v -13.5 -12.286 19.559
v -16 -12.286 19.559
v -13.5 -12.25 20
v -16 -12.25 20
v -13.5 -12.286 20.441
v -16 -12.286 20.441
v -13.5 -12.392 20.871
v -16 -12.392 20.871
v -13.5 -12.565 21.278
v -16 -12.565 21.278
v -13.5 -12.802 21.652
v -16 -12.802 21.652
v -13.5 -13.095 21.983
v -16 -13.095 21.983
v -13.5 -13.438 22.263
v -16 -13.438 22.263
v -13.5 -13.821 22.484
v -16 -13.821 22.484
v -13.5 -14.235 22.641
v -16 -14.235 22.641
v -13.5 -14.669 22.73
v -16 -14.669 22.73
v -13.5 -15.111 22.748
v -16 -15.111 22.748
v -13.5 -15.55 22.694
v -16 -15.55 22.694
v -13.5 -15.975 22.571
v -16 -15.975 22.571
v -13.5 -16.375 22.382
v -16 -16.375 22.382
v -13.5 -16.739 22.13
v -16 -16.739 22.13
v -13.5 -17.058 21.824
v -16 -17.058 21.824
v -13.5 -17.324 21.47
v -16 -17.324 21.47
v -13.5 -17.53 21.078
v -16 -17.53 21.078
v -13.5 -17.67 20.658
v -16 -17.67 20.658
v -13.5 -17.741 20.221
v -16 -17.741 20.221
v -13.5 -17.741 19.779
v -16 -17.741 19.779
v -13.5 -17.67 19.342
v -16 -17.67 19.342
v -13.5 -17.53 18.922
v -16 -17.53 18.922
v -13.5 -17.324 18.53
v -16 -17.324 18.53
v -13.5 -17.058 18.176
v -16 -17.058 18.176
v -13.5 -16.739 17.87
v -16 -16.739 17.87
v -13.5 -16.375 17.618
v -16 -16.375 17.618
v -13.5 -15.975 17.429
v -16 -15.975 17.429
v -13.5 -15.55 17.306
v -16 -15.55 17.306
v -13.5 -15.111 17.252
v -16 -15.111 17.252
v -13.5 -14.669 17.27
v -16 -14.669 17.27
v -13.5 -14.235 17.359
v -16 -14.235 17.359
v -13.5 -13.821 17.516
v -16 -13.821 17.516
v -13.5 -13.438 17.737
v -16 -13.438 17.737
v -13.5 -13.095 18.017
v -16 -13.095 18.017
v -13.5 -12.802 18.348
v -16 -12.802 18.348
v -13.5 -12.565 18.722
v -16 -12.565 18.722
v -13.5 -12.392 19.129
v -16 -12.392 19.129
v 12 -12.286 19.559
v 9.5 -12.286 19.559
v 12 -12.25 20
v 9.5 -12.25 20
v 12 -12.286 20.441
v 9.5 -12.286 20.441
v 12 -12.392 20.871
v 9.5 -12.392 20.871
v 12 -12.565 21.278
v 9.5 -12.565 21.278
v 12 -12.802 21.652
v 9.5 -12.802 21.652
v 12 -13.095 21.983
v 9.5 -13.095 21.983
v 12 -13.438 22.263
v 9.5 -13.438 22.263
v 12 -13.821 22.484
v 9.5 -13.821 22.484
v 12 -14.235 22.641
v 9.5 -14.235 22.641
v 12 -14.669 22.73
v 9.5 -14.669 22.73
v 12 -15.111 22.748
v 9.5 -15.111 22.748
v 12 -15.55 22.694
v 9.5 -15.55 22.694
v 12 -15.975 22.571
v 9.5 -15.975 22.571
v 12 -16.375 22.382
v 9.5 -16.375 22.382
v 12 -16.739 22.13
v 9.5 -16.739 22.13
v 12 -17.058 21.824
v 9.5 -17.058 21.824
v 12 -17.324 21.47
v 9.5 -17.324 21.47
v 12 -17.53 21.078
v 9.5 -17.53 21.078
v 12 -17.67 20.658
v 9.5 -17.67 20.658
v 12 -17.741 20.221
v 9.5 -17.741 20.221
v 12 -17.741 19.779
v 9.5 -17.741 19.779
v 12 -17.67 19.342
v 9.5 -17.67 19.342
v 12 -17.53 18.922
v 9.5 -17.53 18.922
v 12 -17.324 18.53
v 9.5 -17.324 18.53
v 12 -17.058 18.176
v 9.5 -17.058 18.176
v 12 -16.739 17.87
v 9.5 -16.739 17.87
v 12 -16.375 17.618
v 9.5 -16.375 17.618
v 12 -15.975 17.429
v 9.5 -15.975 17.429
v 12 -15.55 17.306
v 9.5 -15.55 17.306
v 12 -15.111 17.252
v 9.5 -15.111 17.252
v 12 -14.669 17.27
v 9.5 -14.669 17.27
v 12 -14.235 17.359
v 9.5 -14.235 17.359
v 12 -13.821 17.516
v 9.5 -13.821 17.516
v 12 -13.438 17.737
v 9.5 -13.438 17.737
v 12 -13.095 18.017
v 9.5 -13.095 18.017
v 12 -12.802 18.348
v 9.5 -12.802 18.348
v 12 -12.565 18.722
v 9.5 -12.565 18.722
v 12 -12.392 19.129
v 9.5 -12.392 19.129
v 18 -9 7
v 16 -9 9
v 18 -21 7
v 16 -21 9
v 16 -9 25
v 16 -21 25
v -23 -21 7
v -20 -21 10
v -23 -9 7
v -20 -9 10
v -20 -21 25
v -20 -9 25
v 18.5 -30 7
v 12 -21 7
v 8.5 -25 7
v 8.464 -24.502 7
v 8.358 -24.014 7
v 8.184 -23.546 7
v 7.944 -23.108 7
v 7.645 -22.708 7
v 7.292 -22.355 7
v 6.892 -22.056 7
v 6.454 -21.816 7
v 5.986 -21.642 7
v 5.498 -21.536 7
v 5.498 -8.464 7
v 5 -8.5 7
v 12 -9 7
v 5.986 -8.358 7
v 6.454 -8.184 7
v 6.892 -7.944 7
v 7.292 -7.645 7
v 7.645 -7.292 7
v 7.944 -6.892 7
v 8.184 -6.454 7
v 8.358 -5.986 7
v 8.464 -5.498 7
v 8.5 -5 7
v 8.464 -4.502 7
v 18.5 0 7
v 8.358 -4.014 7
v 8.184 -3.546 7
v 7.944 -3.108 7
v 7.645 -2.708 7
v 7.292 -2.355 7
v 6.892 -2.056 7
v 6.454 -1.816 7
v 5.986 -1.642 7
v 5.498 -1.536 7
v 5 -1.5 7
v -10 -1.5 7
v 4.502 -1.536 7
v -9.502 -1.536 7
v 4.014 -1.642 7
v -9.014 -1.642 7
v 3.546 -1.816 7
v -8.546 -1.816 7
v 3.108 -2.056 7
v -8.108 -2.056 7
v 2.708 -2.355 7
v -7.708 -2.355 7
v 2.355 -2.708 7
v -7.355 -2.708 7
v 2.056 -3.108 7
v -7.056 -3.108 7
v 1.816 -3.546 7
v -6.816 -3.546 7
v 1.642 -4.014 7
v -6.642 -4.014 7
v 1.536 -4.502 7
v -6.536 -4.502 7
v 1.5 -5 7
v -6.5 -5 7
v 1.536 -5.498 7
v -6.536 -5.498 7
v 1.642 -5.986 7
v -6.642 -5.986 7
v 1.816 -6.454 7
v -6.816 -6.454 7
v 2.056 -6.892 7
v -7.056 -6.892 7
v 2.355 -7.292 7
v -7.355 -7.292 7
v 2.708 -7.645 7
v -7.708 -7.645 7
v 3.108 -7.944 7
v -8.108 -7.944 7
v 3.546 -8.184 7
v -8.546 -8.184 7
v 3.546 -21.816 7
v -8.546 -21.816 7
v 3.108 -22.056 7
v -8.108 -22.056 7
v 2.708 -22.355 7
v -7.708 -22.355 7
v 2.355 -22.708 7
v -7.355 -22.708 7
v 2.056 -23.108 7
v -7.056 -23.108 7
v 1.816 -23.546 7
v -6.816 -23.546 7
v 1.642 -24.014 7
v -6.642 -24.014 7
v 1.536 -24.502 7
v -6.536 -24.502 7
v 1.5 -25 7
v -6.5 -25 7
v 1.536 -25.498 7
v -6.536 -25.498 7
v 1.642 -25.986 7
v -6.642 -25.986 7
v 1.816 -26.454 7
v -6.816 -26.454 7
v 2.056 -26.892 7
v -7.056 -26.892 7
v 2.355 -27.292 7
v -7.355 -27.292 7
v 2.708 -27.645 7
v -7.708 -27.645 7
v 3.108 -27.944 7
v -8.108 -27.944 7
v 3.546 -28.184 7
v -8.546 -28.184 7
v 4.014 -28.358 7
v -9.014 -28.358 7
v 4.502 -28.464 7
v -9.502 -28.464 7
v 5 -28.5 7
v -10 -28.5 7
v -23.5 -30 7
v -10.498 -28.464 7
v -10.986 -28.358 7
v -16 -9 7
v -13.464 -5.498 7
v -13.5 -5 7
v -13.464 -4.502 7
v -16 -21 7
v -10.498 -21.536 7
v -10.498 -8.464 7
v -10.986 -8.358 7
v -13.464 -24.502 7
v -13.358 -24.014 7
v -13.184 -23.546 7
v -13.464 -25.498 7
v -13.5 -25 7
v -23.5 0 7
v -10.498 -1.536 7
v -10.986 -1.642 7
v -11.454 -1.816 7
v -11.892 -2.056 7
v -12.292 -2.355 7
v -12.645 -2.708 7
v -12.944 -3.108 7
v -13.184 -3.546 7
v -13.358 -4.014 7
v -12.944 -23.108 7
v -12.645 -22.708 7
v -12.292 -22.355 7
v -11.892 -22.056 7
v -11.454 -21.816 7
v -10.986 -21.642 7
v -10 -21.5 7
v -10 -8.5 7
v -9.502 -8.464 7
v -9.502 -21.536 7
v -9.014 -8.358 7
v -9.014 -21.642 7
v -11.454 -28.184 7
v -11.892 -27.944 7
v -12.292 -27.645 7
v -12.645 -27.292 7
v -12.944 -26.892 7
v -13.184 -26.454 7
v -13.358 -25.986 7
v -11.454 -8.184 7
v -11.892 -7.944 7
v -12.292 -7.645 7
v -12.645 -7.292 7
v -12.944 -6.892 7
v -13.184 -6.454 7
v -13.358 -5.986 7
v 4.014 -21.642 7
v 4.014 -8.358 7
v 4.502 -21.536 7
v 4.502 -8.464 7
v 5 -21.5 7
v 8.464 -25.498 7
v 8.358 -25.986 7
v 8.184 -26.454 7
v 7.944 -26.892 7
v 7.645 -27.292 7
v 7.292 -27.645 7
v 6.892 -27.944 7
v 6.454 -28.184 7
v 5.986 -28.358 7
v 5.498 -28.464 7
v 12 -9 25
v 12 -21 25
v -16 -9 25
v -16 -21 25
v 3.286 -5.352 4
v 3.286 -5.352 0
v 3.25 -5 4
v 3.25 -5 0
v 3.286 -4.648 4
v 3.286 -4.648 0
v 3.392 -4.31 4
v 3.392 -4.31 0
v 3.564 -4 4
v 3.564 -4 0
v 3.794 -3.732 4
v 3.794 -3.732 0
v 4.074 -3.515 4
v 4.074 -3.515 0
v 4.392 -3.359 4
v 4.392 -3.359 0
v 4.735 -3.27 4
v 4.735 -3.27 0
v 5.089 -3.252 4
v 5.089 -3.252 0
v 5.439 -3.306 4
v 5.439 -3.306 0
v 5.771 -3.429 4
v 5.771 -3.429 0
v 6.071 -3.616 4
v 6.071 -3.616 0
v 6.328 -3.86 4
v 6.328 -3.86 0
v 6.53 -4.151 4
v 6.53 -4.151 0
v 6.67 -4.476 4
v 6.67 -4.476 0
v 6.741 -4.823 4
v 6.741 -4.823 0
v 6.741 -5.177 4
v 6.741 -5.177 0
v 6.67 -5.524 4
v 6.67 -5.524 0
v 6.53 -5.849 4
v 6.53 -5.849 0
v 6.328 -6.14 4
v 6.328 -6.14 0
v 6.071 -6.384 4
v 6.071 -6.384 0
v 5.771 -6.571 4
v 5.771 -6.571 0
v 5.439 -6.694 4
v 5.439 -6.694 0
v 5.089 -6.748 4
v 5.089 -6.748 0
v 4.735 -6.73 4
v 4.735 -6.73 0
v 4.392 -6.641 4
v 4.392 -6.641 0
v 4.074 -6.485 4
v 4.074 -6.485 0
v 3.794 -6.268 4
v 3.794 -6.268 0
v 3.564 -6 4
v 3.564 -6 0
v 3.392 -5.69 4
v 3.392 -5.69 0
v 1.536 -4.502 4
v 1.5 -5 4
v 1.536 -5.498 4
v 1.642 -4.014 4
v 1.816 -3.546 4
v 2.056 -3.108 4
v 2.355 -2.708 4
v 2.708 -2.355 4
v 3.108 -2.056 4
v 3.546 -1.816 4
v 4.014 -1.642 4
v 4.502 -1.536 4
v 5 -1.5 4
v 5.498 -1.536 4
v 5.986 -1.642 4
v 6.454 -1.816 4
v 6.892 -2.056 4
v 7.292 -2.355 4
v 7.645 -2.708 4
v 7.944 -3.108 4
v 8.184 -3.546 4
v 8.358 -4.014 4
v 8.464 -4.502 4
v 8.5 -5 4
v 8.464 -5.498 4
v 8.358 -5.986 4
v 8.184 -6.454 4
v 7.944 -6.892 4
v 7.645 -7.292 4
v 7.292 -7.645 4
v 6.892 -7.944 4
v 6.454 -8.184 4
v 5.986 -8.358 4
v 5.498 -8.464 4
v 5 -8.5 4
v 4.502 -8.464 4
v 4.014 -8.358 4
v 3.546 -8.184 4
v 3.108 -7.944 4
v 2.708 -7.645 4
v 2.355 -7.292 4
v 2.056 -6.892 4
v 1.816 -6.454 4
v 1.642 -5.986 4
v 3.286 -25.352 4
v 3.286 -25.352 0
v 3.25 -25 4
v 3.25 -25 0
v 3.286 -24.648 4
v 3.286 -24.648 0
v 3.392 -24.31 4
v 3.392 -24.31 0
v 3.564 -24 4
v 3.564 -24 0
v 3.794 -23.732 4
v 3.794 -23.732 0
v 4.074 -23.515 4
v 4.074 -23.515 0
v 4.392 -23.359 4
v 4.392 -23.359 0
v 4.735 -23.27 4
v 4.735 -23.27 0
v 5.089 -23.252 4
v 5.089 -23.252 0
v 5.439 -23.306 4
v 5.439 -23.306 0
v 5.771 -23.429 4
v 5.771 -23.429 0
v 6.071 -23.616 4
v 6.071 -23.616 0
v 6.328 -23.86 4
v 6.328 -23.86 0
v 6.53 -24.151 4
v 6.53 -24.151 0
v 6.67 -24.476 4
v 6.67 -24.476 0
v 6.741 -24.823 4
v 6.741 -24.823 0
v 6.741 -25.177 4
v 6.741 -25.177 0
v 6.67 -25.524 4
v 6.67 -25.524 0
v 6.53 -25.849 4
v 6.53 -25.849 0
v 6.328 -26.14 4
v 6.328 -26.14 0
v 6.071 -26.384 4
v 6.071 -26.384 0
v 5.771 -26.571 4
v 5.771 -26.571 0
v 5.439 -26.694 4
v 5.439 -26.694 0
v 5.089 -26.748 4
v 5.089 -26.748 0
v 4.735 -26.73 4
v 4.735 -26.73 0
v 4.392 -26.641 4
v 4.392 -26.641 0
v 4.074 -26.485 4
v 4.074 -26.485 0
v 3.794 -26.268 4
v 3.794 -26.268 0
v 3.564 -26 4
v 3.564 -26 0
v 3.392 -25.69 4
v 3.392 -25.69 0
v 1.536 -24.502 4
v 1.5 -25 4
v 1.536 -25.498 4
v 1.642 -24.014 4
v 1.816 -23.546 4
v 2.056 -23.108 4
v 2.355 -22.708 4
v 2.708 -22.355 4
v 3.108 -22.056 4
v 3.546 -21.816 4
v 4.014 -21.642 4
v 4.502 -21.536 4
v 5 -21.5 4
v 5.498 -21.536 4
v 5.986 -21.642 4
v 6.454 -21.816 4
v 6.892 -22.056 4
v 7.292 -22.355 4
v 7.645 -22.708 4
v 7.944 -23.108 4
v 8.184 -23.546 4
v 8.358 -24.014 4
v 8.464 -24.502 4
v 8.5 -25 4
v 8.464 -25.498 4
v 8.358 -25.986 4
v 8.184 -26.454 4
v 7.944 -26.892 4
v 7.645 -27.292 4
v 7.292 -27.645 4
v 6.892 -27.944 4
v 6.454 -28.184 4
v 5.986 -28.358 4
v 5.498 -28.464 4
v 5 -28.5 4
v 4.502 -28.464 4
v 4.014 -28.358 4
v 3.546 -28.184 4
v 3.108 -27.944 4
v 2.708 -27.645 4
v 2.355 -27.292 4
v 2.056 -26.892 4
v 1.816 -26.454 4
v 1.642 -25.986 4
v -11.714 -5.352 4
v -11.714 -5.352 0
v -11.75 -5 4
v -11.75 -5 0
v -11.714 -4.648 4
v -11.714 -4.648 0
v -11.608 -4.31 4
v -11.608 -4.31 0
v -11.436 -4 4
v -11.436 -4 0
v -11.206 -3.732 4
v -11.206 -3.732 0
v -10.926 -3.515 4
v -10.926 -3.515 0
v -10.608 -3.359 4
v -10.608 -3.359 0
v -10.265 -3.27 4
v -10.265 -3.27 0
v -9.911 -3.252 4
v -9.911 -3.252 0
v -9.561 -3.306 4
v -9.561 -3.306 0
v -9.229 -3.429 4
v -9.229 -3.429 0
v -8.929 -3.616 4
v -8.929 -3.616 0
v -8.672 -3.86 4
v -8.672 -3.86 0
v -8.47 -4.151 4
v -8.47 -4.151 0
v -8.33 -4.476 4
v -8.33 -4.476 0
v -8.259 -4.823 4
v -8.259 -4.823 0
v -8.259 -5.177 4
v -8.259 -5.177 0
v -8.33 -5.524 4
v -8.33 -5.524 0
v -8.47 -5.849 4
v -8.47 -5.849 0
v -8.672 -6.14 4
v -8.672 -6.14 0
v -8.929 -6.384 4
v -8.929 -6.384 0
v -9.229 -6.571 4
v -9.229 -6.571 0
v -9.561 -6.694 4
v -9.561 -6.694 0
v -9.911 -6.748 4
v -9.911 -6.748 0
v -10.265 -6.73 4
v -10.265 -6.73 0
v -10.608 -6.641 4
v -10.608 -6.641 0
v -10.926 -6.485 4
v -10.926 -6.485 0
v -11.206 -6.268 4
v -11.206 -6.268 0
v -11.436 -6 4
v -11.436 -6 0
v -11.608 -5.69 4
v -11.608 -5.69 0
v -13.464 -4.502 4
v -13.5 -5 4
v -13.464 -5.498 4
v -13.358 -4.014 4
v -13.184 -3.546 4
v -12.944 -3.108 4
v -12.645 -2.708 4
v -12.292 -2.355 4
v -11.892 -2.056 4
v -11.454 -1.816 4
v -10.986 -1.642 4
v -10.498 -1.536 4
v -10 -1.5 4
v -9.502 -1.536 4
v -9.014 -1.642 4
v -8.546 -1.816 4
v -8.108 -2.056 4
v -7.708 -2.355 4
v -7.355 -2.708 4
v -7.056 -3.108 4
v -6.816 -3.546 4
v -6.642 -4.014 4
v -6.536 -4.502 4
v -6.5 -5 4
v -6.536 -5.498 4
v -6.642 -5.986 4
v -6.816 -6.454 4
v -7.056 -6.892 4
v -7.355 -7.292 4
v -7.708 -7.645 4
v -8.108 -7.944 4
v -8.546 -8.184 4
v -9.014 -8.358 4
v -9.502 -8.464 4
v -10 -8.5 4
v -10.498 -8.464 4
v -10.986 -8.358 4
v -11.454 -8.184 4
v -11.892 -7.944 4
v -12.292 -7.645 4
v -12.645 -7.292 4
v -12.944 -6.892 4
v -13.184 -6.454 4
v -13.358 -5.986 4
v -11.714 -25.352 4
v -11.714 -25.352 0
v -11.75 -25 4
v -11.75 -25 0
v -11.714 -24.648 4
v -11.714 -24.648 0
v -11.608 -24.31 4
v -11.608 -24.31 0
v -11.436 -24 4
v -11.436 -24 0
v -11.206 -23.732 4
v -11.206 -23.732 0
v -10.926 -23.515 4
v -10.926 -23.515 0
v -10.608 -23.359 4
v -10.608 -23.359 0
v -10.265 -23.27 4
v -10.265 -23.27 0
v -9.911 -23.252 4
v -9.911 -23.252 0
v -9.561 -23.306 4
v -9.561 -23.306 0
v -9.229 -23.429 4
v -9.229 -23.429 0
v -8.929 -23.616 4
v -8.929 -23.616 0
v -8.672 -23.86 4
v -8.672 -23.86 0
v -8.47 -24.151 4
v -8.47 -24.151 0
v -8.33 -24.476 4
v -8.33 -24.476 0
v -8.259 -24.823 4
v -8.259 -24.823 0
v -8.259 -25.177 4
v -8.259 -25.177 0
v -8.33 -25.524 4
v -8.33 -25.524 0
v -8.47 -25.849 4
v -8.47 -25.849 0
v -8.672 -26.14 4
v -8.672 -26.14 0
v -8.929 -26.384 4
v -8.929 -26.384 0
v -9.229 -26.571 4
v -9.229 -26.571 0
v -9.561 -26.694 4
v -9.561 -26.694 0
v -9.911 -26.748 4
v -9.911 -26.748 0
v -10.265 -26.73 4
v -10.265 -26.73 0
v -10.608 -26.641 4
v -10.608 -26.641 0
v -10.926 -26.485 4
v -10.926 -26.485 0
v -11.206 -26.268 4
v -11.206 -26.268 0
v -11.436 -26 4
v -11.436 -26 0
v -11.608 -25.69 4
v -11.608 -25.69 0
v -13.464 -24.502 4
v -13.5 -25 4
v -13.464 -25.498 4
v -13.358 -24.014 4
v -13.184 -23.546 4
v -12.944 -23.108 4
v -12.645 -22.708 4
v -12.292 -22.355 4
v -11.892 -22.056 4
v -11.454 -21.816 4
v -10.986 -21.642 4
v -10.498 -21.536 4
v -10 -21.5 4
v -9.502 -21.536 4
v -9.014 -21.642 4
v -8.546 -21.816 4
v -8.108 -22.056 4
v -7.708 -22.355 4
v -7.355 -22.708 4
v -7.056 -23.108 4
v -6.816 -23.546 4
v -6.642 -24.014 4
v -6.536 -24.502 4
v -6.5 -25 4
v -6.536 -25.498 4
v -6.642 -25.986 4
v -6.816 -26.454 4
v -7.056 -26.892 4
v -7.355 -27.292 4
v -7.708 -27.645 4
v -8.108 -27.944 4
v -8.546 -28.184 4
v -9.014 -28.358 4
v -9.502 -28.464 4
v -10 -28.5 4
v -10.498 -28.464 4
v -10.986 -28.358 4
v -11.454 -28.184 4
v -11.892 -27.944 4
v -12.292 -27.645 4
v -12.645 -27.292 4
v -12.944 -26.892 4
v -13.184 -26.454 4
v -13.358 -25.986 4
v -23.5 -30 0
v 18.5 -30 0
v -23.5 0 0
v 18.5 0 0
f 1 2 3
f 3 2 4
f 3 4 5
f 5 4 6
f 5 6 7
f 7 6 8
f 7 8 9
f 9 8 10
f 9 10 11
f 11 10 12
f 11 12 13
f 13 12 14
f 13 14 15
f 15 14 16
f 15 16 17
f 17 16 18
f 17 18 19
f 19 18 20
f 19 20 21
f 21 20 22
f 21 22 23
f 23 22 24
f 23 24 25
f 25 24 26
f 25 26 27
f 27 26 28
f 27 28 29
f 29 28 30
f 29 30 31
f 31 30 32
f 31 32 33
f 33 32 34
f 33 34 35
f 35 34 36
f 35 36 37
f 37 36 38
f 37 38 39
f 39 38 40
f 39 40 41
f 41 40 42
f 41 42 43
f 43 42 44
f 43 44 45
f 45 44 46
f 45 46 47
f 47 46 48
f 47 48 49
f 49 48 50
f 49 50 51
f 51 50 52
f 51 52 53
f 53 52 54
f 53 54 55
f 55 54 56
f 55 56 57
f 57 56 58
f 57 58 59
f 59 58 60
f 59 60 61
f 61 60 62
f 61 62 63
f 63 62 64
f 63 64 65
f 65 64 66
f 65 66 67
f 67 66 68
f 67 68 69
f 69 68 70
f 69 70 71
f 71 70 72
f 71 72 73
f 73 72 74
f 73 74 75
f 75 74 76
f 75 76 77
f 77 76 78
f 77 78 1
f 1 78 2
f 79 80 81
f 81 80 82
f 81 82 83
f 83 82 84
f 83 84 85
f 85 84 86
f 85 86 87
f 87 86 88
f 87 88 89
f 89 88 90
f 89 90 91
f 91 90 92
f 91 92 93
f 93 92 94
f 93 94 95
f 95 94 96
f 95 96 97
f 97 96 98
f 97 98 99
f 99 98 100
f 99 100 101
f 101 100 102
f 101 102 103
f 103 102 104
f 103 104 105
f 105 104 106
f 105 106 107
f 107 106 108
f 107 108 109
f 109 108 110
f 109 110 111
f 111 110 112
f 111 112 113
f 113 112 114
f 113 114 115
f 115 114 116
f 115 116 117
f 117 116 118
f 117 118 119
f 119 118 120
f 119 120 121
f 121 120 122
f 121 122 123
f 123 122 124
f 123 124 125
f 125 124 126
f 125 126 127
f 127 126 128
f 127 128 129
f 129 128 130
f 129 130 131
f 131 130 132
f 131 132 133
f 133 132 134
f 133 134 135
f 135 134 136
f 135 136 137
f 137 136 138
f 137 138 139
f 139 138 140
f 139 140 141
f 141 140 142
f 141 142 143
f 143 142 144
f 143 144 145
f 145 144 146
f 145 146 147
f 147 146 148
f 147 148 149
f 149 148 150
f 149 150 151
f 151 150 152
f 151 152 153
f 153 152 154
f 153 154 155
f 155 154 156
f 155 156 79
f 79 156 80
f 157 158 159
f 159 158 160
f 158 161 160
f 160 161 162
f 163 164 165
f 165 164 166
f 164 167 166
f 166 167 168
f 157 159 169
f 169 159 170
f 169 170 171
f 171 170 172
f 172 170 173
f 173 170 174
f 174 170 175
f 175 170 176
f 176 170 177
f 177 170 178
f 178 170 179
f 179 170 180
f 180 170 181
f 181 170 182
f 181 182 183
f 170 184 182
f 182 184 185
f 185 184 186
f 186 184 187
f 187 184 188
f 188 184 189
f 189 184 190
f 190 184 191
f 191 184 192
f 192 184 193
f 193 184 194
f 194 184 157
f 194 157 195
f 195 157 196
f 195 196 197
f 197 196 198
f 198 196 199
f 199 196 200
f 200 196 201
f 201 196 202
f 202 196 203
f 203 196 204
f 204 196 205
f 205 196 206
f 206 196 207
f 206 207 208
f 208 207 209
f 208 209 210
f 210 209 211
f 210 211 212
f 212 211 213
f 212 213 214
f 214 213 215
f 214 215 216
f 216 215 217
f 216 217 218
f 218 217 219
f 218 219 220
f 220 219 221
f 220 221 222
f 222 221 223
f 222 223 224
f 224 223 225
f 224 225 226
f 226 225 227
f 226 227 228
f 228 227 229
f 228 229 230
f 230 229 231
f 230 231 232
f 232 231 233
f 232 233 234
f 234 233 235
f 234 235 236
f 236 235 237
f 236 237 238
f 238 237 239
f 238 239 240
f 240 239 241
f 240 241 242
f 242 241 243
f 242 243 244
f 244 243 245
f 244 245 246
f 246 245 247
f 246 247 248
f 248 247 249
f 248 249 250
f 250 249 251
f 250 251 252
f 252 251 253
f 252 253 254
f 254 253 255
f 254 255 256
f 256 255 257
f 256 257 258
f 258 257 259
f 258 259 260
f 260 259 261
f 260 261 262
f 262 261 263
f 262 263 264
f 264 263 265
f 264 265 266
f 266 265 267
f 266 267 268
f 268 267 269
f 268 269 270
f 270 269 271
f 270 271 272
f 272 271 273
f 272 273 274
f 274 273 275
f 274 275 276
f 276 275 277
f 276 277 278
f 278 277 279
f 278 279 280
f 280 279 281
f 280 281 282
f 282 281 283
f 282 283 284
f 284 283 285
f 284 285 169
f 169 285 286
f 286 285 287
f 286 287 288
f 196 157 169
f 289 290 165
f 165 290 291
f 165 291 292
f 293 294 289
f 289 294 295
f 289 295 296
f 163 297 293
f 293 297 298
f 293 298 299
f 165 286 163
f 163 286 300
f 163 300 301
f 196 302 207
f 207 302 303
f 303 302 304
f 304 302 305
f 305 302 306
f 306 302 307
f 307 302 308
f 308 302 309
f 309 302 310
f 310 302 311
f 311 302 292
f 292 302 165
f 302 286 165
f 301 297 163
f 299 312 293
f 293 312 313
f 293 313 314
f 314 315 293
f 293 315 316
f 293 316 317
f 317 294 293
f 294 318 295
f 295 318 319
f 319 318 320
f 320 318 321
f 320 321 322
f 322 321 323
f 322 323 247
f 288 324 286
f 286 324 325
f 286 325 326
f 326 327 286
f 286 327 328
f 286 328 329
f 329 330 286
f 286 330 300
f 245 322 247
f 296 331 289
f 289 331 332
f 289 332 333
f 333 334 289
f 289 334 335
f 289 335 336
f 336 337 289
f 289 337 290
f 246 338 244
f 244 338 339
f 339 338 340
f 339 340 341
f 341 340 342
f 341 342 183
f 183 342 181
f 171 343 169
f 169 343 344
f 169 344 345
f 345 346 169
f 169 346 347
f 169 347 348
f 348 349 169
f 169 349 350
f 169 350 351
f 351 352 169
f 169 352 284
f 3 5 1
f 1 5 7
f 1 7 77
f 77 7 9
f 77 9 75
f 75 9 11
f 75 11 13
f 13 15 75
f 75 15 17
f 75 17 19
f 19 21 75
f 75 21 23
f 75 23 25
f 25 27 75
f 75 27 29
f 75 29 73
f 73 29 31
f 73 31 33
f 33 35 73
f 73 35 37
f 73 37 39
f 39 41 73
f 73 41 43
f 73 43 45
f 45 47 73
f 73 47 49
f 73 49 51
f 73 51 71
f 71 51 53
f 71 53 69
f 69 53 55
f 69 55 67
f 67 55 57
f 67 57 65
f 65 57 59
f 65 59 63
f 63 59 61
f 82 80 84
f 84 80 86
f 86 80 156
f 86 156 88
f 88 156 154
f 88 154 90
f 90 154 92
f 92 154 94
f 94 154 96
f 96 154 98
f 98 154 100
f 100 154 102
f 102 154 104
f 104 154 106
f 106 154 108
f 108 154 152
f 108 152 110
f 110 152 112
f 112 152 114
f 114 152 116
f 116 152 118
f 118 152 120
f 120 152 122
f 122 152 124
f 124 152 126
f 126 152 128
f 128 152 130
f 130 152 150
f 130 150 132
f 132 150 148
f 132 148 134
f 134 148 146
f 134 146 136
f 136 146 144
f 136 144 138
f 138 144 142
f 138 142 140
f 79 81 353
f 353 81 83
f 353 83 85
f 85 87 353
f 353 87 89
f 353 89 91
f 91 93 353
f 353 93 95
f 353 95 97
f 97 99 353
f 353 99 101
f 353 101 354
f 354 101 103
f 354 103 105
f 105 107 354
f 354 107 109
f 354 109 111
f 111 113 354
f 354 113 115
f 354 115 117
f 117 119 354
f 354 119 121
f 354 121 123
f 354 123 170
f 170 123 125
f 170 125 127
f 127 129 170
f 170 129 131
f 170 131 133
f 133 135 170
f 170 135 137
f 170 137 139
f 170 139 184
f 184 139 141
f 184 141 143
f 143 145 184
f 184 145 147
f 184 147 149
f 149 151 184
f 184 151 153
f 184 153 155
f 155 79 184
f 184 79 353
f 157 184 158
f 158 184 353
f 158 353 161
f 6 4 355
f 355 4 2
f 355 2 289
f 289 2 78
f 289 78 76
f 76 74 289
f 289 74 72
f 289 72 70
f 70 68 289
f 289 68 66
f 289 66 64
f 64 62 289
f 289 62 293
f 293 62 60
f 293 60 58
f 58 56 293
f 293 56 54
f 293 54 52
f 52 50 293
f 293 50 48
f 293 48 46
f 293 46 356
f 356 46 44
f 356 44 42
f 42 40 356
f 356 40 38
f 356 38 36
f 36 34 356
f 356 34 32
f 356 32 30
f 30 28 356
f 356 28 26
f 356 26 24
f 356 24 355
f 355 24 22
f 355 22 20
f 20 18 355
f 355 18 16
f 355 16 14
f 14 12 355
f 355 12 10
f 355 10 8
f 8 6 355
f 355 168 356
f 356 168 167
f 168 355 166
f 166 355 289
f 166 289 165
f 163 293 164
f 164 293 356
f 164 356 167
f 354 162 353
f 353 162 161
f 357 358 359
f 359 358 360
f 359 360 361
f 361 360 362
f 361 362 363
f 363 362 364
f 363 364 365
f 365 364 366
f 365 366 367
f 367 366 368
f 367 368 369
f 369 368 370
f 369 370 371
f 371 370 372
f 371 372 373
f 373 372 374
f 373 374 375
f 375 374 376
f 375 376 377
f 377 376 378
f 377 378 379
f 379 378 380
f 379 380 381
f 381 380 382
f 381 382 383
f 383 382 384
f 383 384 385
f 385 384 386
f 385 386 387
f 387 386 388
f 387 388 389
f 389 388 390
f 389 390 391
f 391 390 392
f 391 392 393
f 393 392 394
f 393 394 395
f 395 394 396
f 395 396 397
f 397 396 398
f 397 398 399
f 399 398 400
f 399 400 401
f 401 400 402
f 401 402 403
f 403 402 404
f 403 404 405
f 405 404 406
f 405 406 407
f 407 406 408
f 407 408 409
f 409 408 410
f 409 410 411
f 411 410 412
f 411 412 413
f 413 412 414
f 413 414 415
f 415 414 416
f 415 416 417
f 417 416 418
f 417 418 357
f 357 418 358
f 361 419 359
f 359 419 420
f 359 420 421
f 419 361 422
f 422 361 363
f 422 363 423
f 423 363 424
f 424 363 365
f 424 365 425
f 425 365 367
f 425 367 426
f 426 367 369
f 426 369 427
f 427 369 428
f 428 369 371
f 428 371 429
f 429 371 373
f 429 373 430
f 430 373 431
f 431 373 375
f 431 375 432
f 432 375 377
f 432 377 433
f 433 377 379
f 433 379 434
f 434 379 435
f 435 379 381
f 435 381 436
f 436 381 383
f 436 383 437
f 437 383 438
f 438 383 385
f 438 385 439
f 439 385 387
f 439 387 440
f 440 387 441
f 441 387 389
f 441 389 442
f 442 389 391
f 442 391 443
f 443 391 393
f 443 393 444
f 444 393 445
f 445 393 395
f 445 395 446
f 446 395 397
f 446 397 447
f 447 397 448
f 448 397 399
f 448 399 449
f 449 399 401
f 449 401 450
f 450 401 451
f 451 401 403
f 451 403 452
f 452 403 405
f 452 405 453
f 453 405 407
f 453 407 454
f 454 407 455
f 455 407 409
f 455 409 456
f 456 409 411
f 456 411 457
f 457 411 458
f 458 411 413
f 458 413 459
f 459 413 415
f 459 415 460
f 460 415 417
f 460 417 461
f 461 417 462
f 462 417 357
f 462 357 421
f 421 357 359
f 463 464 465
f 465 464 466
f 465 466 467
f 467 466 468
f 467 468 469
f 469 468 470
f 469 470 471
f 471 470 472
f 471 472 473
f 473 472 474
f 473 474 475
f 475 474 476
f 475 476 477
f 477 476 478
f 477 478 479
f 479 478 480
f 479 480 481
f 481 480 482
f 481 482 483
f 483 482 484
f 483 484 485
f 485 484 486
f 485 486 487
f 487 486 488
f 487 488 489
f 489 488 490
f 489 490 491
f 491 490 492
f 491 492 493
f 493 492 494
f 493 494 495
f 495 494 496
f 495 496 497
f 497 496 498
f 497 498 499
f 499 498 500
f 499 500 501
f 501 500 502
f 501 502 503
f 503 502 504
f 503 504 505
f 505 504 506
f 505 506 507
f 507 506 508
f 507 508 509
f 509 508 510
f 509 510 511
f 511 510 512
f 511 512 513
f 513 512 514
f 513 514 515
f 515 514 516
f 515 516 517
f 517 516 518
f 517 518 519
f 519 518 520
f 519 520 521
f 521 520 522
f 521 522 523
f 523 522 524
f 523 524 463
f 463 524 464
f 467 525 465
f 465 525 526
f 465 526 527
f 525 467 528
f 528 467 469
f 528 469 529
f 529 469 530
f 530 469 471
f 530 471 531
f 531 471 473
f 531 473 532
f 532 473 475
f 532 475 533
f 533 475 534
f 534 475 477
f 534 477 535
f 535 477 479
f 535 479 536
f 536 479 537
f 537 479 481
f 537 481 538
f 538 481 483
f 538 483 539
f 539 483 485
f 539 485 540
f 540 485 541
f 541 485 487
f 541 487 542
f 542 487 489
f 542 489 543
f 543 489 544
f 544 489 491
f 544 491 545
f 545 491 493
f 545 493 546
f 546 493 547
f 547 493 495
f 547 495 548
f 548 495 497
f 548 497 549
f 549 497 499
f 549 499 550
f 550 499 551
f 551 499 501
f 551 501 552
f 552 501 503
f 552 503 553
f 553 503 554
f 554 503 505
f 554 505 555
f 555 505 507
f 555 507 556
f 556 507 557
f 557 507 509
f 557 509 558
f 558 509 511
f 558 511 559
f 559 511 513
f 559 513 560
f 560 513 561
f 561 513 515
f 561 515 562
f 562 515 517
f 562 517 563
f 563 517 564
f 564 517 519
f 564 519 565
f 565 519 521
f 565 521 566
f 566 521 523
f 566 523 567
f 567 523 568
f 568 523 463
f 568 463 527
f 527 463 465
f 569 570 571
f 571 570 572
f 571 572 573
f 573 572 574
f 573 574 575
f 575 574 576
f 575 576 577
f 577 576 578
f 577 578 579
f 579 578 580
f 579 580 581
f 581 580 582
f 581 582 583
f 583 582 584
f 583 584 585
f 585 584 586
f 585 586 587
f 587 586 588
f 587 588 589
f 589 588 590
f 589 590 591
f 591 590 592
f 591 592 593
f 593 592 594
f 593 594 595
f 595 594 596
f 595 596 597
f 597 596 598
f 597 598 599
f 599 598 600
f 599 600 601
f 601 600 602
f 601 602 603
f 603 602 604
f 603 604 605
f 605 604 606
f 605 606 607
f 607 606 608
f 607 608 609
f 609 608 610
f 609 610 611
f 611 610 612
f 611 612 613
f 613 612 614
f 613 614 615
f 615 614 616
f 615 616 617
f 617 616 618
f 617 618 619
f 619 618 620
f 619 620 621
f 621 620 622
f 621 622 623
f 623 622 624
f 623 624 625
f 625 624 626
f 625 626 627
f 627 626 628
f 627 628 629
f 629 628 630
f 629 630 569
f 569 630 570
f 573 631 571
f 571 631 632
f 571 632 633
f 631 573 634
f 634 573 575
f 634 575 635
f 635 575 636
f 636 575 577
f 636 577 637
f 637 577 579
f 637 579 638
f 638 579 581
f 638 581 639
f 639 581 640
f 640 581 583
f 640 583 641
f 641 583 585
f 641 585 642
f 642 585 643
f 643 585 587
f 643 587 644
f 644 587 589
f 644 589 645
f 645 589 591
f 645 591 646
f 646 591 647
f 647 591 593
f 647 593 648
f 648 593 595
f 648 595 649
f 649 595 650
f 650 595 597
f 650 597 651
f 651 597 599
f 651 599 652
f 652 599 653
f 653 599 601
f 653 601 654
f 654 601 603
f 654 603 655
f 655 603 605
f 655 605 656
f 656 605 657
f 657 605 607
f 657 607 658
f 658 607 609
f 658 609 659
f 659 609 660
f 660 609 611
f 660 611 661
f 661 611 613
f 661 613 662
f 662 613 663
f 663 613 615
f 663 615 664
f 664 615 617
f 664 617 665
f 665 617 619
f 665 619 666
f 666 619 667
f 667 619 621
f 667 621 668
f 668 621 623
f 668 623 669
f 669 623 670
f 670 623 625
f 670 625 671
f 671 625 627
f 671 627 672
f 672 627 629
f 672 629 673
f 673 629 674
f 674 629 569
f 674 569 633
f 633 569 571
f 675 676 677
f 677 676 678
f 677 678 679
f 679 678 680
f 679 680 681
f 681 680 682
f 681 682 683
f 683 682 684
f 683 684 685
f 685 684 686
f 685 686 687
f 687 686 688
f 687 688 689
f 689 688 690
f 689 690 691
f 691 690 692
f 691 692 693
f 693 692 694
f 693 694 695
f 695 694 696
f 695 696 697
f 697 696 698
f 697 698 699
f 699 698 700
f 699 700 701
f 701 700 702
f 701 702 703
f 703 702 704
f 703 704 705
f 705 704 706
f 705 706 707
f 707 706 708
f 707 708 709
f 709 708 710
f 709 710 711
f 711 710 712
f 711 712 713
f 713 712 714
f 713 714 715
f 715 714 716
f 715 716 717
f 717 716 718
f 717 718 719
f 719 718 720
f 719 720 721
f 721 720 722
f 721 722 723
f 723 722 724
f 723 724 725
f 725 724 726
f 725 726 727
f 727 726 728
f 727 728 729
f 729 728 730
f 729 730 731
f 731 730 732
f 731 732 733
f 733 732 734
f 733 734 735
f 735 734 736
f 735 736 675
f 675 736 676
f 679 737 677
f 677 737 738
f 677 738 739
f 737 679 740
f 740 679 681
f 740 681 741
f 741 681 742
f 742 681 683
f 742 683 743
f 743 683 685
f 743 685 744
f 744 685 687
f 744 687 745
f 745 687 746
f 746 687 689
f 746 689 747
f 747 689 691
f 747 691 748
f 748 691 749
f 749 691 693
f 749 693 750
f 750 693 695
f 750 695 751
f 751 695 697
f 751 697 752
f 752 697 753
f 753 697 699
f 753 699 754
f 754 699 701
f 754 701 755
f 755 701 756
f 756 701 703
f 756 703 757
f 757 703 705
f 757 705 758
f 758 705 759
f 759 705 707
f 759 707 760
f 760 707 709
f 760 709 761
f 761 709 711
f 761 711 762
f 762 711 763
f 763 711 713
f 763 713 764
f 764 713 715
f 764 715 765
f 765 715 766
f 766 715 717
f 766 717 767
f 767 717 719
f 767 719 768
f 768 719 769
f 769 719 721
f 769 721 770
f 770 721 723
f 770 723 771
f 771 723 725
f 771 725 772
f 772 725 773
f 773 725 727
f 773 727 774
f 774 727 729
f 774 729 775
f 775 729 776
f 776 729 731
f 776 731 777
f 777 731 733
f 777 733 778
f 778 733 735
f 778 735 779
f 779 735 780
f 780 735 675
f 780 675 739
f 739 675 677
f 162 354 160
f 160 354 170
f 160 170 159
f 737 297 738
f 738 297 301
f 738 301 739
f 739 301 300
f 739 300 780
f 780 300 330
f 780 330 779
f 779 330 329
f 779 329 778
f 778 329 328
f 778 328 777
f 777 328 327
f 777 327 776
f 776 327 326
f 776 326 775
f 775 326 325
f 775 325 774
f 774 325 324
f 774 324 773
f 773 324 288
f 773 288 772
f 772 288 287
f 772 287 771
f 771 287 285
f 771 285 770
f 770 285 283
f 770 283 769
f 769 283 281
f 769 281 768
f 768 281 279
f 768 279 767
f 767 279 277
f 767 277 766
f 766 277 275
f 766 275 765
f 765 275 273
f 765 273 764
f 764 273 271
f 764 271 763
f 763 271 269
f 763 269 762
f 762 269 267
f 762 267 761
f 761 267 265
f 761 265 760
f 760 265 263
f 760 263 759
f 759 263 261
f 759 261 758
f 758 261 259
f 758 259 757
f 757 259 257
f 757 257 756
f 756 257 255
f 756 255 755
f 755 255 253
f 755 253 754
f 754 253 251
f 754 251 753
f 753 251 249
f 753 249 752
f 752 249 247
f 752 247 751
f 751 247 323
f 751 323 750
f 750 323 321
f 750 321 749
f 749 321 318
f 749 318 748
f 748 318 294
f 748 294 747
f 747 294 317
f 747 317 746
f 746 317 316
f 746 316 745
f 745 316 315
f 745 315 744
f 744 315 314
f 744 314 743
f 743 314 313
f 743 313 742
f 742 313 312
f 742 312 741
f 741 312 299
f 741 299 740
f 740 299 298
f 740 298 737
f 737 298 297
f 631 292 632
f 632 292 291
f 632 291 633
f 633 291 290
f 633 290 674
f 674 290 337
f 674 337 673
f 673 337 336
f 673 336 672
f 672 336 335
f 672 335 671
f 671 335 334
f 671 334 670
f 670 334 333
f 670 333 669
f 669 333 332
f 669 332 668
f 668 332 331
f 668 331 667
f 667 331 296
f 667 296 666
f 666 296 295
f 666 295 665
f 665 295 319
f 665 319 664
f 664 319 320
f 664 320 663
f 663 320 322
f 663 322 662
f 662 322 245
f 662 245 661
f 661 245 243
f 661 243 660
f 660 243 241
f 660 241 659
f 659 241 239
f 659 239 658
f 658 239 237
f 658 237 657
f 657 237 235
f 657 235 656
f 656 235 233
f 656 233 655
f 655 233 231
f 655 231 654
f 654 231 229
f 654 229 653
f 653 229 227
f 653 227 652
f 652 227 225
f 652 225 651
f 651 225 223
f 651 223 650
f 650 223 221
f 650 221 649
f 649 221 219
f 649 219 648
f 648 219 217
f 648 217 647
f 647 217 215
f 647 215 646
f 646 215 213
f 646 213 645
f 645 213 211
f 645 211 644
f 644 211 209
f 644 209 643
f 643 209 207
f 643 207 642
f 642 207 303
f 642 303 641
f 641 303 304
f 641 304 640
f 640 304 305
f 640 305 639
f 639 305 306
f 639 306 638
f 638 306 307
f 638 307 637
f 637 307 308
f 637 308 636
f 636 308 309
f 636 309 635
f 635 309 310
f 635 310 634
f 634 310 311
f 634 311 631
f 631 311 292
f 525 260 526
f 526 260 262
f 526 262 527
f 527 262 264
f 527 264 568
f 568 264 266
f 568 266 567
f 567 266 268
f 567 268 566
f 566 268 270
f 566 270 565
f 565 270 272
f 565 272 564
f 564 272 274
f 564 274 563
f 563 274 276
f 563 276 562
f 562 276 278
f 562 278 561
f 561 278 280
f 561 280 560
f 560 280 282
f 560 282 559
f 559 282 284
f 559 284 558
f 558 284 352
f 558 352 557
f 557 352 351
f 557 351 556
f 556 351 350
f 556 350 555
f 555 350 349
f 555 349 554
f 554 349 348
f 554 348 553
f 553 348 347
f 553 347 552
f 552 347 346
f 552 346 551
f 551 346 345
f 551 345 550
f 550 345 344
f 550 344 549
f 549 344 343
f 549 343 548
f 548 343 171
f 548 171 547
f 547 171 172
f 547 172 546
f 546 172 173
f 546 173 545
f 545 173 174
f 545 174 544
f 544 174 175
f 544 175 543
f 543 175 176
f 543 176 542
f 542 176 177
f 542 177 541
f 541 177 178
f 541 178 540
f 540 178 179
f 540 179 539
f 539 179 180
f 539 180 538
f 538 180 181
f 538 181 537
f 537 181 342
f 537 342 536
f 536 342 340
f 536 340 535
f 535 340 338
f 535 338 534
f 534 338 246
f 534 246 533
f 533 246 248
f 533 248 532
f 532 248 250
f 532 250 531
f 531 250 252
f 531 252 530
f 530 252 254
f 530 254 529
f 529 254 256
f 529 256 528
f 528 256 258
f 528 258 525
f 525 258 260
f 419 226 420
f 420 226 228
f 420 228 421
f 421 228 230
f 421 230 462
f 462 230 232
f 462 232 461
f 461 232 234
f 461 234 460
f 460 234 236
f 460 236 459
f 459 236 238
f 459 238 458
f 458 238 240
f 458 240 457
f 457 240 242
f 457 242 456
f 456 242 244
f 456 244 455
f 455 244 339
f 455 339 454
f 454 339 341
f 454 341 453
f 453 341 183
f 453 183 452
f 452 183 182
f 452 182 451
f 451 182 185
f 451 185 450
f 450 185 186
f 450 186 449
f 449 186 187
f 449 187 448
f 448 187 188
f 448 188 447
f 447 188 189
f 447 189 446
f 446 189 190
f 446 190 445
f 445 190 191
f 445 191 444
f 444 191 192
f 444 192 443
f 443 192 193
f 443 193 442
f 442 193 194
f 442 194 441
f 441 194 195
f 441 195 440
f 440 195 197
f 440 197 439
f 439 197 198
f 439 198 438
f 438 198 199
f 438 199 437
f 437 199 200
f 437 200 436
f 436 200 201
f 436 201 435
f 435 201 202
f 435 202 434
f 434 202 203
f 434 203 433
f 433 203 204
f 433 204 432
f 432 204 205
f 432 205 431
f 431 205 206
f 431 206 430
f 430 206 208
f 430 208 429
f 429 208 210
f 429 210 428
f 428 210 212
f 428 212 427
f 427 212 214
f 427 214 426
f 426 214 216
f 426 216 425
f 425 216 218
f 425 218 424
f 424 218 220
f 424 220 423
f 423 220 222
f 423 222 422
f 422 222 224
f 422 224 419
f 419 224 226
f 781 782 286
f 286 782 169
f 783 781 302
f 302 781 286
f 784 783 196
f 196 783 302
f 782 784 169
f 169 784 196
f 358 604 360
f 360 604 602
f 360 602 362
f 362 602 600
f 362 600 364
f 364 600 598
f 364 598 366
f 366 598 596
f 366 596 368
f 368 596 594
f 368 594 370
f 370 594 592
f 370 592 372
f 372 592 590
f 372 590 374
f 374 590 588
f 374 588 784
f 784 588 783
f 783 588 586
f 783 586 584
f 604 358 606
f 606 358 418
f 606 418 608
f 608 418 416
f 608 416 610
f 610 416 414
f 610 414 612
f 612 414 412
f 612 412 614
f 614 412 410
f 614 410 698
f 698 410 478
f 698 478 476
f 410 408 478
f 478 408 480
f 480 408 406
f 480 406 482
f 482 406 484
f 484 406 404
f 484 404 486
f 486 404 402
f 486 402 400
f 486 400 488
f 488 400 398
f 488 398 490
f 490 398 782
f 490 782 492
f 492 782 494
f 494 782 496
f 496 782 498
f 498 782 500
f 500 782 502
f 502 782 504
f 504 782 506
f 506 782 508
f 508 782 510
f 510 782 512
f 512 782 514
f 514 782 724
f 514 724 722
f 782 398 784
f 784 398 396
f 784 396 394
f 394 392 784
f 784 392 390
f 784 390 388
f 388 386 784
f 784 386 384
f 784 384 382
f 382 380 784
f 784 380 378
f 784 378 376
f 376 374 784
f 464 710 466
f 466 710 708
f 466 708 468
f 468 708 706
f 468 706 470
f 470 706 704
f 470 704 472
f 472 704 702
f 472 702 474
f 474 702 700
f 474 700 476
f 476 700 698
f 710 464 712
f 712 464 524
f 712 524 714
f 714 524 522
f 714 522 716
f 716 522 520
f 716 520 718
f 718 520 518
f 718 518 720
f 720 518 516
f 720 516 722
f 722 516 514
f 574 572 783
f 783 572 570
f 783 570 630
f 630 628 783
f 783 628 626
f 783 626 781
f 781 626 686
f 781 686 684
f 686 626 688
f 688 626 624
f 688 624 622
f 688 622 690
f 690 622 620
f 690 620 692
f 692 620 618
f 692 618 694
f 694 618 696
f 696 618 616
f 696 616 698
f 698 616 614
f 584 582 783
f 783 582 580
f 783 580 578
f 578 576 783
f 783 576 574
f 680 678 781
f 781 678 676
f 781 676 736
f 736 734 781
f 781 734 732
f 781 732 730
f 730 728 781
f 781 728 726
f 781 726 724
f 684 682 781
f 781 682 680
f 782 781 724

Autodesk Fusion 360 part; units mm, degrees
sketch "Szkic1" plane through (0, 0, 0) normal (0, 0, 1) x (1, 0, 0)
  line L0 (-23.5, -30) -> (30, -30)
  line L1 (-23.5, 0) -> (-23.5, -30)
  line L2 (30, -30) -> (30, 0)
  line L3 (30, 0) -> (-23.5, 0)
  line L4 (5, -5) -> (7, -5)
  line L5 (18.5, -5) -> (18.5, -30)
  line L6 (18.5, -5) -> (18.5, 0)
  circle A0 centre (5, -25) radius 1.75
  circle A1 centre (5, -5) radius 1.75
  circle A2 centre (-10, -25) radius 1.75
  circle A3 centre (-10, -5) radius 1.75
  circle A4 centre (-10, -25) radius 3.5
  circle A5 centre (5, -25) radius 3.5
  circle A6 centre (5, -5) radius 3.5
  circle A7 centre (-10, -5) radius 3.5
  line L7 (-10, -5) -> (-9, -5)
  line L8 (-9, -5) -> (-2, -5)
  line L9 (-14, -10) -> (-14, -19)
  line L10 (10, -21) -> (10, -9)
  line L11 (10, -9) -> (-14, -9)
  line L12 (-14, -9) -> (-14, -10)
  line L13 (-14, -19) -> (-14, -21)
  line L14 (-14, -21) -> (10, -21)
  dimension "d1" = 13.5
  dimension "d3" = 3.5
  dimension "d4" = 3.5
  dimension "d5" = 3.5
  dimension "d6" = 3.5
  dimension "d7" = 7
  dimension "d8" = 7
  dimension "d9" = 7
  dimension "d10" = 7
extrude "Wyciągnięcie proste1" add sketch "Szkic1" along normal blind 7 contours L0 L1 L3 L5 L6
extrude "Wyciągnięcie proste2" add sketch "Szkic1" along normal blind 20 contours L9 L10 L11 L12 L13 L14
extrude "Wyciągnięcie proste3" add sketch "Szkic1" along normal blind 4 contours A7 | A4 | A5 | A6
extrude "Wyciągnięcie proste4" add 1 faces at (-6, -13, 20) along direction (0, 0, 1) blind 5
sketch "Szkic2" plane through (10, 0, 0) normal (1, 0, 0) x (0, 1, 0)
  line L0 (-21, 7) -> (-9, 7)
  line L1 (-9, 7) -> (-9, 25)
  line L2 (-9, 25) -> (-21, 25)
  line L3 (-21, 25) -> (-21, 7)
  circle A0 centre (-15, 20) radius 3.25
  dimension "d19" = 6.5
extrude "Wyciągnięcie proste5" add sketch "Szkic2" along normal blind 3 contours L0 L1 L2 L3 | A0
extrude "Wyciągnięcie proste6" add 1 faces at (-14, -17, 19) along direction (-1, 0, 0) blind 3
extrude "Wyciągnięcie proste7" cut sketch "Szkic2" against normal blind 24 contours L0 L1 L2 L3 | A0
extrude "Wyciągnięcie proste8" add sketch "Szkic2" against normal blind 22 contours A0
extrude "Wyciągnięcie proste9" add 1 faces at (-12, -14.06, 19.6878) along direction (-1, 0, 0) blind 3
extrude "Wyciągnięcie proste10" cut sketch "Szkic2" against normal blind 21.5 contours A0
extrude "Wyciągnięcie proste11" add sketch "Szkic2" against normal blind 2.5 contours A0
extrude "Wyciągnięcie proste12" cut 1 faces at (-14, -14.919, 10.253) along direction (-1, 0, 0) blind 2
extrude "Wyciągnięcie proste13" cut 1 faces at (10, -14.919, 10.253) along direction (1, 0, 0) blind 2
extrude "Wyciągnięcie proste14" cut 1 faces at (7.5, -14.06, 19.6878) along direction (1, 0, 0) blind 2
extrude "Wyciągnięcie proste15" cut 1 faces at (-11.5, -14.06, 19.6878) along direction (-1, 0, 0) blind 2
extrude "Wyciągnięcie proste16" add 1 faces at (-17, -17, 19) along direction (-1, 0, 0) blind 2
extrude "Wyciągnięcie proste17" add 1 faces at (13, -13, 13) along direction (1, 0, 0) blind 3
extrude "Wyciągnięcie proste18" add 1 faces at (-19, -17, 19) along direction (-1, 0, 0) blind 1
chamfer "Fazowanie1" distance 3 angle 45 1 edges at (-20, -15, 7)
chamfer "Fazowanie2" distance 2 angle 45 1 edges at (16, -15, 7)
sketch "Szkic3" plane through (9.5, 0, 0) normal (-1, 0, 0) x (0, -1, 0)
  circle A0 centre (15, 20) radius 3.25
  circle A1 centre (15, 20) radius 2.75
  dimension "d50" = 5.5
extrude "Wyciągnięcie proste19" cut sketch "Szkic3" against normal blind 2.5
extrude "Wyciągnięcie proste20" cut sketch "Szkic3" along normal blind 25.5
equation "d26 = 2 mm - 24 mm"
